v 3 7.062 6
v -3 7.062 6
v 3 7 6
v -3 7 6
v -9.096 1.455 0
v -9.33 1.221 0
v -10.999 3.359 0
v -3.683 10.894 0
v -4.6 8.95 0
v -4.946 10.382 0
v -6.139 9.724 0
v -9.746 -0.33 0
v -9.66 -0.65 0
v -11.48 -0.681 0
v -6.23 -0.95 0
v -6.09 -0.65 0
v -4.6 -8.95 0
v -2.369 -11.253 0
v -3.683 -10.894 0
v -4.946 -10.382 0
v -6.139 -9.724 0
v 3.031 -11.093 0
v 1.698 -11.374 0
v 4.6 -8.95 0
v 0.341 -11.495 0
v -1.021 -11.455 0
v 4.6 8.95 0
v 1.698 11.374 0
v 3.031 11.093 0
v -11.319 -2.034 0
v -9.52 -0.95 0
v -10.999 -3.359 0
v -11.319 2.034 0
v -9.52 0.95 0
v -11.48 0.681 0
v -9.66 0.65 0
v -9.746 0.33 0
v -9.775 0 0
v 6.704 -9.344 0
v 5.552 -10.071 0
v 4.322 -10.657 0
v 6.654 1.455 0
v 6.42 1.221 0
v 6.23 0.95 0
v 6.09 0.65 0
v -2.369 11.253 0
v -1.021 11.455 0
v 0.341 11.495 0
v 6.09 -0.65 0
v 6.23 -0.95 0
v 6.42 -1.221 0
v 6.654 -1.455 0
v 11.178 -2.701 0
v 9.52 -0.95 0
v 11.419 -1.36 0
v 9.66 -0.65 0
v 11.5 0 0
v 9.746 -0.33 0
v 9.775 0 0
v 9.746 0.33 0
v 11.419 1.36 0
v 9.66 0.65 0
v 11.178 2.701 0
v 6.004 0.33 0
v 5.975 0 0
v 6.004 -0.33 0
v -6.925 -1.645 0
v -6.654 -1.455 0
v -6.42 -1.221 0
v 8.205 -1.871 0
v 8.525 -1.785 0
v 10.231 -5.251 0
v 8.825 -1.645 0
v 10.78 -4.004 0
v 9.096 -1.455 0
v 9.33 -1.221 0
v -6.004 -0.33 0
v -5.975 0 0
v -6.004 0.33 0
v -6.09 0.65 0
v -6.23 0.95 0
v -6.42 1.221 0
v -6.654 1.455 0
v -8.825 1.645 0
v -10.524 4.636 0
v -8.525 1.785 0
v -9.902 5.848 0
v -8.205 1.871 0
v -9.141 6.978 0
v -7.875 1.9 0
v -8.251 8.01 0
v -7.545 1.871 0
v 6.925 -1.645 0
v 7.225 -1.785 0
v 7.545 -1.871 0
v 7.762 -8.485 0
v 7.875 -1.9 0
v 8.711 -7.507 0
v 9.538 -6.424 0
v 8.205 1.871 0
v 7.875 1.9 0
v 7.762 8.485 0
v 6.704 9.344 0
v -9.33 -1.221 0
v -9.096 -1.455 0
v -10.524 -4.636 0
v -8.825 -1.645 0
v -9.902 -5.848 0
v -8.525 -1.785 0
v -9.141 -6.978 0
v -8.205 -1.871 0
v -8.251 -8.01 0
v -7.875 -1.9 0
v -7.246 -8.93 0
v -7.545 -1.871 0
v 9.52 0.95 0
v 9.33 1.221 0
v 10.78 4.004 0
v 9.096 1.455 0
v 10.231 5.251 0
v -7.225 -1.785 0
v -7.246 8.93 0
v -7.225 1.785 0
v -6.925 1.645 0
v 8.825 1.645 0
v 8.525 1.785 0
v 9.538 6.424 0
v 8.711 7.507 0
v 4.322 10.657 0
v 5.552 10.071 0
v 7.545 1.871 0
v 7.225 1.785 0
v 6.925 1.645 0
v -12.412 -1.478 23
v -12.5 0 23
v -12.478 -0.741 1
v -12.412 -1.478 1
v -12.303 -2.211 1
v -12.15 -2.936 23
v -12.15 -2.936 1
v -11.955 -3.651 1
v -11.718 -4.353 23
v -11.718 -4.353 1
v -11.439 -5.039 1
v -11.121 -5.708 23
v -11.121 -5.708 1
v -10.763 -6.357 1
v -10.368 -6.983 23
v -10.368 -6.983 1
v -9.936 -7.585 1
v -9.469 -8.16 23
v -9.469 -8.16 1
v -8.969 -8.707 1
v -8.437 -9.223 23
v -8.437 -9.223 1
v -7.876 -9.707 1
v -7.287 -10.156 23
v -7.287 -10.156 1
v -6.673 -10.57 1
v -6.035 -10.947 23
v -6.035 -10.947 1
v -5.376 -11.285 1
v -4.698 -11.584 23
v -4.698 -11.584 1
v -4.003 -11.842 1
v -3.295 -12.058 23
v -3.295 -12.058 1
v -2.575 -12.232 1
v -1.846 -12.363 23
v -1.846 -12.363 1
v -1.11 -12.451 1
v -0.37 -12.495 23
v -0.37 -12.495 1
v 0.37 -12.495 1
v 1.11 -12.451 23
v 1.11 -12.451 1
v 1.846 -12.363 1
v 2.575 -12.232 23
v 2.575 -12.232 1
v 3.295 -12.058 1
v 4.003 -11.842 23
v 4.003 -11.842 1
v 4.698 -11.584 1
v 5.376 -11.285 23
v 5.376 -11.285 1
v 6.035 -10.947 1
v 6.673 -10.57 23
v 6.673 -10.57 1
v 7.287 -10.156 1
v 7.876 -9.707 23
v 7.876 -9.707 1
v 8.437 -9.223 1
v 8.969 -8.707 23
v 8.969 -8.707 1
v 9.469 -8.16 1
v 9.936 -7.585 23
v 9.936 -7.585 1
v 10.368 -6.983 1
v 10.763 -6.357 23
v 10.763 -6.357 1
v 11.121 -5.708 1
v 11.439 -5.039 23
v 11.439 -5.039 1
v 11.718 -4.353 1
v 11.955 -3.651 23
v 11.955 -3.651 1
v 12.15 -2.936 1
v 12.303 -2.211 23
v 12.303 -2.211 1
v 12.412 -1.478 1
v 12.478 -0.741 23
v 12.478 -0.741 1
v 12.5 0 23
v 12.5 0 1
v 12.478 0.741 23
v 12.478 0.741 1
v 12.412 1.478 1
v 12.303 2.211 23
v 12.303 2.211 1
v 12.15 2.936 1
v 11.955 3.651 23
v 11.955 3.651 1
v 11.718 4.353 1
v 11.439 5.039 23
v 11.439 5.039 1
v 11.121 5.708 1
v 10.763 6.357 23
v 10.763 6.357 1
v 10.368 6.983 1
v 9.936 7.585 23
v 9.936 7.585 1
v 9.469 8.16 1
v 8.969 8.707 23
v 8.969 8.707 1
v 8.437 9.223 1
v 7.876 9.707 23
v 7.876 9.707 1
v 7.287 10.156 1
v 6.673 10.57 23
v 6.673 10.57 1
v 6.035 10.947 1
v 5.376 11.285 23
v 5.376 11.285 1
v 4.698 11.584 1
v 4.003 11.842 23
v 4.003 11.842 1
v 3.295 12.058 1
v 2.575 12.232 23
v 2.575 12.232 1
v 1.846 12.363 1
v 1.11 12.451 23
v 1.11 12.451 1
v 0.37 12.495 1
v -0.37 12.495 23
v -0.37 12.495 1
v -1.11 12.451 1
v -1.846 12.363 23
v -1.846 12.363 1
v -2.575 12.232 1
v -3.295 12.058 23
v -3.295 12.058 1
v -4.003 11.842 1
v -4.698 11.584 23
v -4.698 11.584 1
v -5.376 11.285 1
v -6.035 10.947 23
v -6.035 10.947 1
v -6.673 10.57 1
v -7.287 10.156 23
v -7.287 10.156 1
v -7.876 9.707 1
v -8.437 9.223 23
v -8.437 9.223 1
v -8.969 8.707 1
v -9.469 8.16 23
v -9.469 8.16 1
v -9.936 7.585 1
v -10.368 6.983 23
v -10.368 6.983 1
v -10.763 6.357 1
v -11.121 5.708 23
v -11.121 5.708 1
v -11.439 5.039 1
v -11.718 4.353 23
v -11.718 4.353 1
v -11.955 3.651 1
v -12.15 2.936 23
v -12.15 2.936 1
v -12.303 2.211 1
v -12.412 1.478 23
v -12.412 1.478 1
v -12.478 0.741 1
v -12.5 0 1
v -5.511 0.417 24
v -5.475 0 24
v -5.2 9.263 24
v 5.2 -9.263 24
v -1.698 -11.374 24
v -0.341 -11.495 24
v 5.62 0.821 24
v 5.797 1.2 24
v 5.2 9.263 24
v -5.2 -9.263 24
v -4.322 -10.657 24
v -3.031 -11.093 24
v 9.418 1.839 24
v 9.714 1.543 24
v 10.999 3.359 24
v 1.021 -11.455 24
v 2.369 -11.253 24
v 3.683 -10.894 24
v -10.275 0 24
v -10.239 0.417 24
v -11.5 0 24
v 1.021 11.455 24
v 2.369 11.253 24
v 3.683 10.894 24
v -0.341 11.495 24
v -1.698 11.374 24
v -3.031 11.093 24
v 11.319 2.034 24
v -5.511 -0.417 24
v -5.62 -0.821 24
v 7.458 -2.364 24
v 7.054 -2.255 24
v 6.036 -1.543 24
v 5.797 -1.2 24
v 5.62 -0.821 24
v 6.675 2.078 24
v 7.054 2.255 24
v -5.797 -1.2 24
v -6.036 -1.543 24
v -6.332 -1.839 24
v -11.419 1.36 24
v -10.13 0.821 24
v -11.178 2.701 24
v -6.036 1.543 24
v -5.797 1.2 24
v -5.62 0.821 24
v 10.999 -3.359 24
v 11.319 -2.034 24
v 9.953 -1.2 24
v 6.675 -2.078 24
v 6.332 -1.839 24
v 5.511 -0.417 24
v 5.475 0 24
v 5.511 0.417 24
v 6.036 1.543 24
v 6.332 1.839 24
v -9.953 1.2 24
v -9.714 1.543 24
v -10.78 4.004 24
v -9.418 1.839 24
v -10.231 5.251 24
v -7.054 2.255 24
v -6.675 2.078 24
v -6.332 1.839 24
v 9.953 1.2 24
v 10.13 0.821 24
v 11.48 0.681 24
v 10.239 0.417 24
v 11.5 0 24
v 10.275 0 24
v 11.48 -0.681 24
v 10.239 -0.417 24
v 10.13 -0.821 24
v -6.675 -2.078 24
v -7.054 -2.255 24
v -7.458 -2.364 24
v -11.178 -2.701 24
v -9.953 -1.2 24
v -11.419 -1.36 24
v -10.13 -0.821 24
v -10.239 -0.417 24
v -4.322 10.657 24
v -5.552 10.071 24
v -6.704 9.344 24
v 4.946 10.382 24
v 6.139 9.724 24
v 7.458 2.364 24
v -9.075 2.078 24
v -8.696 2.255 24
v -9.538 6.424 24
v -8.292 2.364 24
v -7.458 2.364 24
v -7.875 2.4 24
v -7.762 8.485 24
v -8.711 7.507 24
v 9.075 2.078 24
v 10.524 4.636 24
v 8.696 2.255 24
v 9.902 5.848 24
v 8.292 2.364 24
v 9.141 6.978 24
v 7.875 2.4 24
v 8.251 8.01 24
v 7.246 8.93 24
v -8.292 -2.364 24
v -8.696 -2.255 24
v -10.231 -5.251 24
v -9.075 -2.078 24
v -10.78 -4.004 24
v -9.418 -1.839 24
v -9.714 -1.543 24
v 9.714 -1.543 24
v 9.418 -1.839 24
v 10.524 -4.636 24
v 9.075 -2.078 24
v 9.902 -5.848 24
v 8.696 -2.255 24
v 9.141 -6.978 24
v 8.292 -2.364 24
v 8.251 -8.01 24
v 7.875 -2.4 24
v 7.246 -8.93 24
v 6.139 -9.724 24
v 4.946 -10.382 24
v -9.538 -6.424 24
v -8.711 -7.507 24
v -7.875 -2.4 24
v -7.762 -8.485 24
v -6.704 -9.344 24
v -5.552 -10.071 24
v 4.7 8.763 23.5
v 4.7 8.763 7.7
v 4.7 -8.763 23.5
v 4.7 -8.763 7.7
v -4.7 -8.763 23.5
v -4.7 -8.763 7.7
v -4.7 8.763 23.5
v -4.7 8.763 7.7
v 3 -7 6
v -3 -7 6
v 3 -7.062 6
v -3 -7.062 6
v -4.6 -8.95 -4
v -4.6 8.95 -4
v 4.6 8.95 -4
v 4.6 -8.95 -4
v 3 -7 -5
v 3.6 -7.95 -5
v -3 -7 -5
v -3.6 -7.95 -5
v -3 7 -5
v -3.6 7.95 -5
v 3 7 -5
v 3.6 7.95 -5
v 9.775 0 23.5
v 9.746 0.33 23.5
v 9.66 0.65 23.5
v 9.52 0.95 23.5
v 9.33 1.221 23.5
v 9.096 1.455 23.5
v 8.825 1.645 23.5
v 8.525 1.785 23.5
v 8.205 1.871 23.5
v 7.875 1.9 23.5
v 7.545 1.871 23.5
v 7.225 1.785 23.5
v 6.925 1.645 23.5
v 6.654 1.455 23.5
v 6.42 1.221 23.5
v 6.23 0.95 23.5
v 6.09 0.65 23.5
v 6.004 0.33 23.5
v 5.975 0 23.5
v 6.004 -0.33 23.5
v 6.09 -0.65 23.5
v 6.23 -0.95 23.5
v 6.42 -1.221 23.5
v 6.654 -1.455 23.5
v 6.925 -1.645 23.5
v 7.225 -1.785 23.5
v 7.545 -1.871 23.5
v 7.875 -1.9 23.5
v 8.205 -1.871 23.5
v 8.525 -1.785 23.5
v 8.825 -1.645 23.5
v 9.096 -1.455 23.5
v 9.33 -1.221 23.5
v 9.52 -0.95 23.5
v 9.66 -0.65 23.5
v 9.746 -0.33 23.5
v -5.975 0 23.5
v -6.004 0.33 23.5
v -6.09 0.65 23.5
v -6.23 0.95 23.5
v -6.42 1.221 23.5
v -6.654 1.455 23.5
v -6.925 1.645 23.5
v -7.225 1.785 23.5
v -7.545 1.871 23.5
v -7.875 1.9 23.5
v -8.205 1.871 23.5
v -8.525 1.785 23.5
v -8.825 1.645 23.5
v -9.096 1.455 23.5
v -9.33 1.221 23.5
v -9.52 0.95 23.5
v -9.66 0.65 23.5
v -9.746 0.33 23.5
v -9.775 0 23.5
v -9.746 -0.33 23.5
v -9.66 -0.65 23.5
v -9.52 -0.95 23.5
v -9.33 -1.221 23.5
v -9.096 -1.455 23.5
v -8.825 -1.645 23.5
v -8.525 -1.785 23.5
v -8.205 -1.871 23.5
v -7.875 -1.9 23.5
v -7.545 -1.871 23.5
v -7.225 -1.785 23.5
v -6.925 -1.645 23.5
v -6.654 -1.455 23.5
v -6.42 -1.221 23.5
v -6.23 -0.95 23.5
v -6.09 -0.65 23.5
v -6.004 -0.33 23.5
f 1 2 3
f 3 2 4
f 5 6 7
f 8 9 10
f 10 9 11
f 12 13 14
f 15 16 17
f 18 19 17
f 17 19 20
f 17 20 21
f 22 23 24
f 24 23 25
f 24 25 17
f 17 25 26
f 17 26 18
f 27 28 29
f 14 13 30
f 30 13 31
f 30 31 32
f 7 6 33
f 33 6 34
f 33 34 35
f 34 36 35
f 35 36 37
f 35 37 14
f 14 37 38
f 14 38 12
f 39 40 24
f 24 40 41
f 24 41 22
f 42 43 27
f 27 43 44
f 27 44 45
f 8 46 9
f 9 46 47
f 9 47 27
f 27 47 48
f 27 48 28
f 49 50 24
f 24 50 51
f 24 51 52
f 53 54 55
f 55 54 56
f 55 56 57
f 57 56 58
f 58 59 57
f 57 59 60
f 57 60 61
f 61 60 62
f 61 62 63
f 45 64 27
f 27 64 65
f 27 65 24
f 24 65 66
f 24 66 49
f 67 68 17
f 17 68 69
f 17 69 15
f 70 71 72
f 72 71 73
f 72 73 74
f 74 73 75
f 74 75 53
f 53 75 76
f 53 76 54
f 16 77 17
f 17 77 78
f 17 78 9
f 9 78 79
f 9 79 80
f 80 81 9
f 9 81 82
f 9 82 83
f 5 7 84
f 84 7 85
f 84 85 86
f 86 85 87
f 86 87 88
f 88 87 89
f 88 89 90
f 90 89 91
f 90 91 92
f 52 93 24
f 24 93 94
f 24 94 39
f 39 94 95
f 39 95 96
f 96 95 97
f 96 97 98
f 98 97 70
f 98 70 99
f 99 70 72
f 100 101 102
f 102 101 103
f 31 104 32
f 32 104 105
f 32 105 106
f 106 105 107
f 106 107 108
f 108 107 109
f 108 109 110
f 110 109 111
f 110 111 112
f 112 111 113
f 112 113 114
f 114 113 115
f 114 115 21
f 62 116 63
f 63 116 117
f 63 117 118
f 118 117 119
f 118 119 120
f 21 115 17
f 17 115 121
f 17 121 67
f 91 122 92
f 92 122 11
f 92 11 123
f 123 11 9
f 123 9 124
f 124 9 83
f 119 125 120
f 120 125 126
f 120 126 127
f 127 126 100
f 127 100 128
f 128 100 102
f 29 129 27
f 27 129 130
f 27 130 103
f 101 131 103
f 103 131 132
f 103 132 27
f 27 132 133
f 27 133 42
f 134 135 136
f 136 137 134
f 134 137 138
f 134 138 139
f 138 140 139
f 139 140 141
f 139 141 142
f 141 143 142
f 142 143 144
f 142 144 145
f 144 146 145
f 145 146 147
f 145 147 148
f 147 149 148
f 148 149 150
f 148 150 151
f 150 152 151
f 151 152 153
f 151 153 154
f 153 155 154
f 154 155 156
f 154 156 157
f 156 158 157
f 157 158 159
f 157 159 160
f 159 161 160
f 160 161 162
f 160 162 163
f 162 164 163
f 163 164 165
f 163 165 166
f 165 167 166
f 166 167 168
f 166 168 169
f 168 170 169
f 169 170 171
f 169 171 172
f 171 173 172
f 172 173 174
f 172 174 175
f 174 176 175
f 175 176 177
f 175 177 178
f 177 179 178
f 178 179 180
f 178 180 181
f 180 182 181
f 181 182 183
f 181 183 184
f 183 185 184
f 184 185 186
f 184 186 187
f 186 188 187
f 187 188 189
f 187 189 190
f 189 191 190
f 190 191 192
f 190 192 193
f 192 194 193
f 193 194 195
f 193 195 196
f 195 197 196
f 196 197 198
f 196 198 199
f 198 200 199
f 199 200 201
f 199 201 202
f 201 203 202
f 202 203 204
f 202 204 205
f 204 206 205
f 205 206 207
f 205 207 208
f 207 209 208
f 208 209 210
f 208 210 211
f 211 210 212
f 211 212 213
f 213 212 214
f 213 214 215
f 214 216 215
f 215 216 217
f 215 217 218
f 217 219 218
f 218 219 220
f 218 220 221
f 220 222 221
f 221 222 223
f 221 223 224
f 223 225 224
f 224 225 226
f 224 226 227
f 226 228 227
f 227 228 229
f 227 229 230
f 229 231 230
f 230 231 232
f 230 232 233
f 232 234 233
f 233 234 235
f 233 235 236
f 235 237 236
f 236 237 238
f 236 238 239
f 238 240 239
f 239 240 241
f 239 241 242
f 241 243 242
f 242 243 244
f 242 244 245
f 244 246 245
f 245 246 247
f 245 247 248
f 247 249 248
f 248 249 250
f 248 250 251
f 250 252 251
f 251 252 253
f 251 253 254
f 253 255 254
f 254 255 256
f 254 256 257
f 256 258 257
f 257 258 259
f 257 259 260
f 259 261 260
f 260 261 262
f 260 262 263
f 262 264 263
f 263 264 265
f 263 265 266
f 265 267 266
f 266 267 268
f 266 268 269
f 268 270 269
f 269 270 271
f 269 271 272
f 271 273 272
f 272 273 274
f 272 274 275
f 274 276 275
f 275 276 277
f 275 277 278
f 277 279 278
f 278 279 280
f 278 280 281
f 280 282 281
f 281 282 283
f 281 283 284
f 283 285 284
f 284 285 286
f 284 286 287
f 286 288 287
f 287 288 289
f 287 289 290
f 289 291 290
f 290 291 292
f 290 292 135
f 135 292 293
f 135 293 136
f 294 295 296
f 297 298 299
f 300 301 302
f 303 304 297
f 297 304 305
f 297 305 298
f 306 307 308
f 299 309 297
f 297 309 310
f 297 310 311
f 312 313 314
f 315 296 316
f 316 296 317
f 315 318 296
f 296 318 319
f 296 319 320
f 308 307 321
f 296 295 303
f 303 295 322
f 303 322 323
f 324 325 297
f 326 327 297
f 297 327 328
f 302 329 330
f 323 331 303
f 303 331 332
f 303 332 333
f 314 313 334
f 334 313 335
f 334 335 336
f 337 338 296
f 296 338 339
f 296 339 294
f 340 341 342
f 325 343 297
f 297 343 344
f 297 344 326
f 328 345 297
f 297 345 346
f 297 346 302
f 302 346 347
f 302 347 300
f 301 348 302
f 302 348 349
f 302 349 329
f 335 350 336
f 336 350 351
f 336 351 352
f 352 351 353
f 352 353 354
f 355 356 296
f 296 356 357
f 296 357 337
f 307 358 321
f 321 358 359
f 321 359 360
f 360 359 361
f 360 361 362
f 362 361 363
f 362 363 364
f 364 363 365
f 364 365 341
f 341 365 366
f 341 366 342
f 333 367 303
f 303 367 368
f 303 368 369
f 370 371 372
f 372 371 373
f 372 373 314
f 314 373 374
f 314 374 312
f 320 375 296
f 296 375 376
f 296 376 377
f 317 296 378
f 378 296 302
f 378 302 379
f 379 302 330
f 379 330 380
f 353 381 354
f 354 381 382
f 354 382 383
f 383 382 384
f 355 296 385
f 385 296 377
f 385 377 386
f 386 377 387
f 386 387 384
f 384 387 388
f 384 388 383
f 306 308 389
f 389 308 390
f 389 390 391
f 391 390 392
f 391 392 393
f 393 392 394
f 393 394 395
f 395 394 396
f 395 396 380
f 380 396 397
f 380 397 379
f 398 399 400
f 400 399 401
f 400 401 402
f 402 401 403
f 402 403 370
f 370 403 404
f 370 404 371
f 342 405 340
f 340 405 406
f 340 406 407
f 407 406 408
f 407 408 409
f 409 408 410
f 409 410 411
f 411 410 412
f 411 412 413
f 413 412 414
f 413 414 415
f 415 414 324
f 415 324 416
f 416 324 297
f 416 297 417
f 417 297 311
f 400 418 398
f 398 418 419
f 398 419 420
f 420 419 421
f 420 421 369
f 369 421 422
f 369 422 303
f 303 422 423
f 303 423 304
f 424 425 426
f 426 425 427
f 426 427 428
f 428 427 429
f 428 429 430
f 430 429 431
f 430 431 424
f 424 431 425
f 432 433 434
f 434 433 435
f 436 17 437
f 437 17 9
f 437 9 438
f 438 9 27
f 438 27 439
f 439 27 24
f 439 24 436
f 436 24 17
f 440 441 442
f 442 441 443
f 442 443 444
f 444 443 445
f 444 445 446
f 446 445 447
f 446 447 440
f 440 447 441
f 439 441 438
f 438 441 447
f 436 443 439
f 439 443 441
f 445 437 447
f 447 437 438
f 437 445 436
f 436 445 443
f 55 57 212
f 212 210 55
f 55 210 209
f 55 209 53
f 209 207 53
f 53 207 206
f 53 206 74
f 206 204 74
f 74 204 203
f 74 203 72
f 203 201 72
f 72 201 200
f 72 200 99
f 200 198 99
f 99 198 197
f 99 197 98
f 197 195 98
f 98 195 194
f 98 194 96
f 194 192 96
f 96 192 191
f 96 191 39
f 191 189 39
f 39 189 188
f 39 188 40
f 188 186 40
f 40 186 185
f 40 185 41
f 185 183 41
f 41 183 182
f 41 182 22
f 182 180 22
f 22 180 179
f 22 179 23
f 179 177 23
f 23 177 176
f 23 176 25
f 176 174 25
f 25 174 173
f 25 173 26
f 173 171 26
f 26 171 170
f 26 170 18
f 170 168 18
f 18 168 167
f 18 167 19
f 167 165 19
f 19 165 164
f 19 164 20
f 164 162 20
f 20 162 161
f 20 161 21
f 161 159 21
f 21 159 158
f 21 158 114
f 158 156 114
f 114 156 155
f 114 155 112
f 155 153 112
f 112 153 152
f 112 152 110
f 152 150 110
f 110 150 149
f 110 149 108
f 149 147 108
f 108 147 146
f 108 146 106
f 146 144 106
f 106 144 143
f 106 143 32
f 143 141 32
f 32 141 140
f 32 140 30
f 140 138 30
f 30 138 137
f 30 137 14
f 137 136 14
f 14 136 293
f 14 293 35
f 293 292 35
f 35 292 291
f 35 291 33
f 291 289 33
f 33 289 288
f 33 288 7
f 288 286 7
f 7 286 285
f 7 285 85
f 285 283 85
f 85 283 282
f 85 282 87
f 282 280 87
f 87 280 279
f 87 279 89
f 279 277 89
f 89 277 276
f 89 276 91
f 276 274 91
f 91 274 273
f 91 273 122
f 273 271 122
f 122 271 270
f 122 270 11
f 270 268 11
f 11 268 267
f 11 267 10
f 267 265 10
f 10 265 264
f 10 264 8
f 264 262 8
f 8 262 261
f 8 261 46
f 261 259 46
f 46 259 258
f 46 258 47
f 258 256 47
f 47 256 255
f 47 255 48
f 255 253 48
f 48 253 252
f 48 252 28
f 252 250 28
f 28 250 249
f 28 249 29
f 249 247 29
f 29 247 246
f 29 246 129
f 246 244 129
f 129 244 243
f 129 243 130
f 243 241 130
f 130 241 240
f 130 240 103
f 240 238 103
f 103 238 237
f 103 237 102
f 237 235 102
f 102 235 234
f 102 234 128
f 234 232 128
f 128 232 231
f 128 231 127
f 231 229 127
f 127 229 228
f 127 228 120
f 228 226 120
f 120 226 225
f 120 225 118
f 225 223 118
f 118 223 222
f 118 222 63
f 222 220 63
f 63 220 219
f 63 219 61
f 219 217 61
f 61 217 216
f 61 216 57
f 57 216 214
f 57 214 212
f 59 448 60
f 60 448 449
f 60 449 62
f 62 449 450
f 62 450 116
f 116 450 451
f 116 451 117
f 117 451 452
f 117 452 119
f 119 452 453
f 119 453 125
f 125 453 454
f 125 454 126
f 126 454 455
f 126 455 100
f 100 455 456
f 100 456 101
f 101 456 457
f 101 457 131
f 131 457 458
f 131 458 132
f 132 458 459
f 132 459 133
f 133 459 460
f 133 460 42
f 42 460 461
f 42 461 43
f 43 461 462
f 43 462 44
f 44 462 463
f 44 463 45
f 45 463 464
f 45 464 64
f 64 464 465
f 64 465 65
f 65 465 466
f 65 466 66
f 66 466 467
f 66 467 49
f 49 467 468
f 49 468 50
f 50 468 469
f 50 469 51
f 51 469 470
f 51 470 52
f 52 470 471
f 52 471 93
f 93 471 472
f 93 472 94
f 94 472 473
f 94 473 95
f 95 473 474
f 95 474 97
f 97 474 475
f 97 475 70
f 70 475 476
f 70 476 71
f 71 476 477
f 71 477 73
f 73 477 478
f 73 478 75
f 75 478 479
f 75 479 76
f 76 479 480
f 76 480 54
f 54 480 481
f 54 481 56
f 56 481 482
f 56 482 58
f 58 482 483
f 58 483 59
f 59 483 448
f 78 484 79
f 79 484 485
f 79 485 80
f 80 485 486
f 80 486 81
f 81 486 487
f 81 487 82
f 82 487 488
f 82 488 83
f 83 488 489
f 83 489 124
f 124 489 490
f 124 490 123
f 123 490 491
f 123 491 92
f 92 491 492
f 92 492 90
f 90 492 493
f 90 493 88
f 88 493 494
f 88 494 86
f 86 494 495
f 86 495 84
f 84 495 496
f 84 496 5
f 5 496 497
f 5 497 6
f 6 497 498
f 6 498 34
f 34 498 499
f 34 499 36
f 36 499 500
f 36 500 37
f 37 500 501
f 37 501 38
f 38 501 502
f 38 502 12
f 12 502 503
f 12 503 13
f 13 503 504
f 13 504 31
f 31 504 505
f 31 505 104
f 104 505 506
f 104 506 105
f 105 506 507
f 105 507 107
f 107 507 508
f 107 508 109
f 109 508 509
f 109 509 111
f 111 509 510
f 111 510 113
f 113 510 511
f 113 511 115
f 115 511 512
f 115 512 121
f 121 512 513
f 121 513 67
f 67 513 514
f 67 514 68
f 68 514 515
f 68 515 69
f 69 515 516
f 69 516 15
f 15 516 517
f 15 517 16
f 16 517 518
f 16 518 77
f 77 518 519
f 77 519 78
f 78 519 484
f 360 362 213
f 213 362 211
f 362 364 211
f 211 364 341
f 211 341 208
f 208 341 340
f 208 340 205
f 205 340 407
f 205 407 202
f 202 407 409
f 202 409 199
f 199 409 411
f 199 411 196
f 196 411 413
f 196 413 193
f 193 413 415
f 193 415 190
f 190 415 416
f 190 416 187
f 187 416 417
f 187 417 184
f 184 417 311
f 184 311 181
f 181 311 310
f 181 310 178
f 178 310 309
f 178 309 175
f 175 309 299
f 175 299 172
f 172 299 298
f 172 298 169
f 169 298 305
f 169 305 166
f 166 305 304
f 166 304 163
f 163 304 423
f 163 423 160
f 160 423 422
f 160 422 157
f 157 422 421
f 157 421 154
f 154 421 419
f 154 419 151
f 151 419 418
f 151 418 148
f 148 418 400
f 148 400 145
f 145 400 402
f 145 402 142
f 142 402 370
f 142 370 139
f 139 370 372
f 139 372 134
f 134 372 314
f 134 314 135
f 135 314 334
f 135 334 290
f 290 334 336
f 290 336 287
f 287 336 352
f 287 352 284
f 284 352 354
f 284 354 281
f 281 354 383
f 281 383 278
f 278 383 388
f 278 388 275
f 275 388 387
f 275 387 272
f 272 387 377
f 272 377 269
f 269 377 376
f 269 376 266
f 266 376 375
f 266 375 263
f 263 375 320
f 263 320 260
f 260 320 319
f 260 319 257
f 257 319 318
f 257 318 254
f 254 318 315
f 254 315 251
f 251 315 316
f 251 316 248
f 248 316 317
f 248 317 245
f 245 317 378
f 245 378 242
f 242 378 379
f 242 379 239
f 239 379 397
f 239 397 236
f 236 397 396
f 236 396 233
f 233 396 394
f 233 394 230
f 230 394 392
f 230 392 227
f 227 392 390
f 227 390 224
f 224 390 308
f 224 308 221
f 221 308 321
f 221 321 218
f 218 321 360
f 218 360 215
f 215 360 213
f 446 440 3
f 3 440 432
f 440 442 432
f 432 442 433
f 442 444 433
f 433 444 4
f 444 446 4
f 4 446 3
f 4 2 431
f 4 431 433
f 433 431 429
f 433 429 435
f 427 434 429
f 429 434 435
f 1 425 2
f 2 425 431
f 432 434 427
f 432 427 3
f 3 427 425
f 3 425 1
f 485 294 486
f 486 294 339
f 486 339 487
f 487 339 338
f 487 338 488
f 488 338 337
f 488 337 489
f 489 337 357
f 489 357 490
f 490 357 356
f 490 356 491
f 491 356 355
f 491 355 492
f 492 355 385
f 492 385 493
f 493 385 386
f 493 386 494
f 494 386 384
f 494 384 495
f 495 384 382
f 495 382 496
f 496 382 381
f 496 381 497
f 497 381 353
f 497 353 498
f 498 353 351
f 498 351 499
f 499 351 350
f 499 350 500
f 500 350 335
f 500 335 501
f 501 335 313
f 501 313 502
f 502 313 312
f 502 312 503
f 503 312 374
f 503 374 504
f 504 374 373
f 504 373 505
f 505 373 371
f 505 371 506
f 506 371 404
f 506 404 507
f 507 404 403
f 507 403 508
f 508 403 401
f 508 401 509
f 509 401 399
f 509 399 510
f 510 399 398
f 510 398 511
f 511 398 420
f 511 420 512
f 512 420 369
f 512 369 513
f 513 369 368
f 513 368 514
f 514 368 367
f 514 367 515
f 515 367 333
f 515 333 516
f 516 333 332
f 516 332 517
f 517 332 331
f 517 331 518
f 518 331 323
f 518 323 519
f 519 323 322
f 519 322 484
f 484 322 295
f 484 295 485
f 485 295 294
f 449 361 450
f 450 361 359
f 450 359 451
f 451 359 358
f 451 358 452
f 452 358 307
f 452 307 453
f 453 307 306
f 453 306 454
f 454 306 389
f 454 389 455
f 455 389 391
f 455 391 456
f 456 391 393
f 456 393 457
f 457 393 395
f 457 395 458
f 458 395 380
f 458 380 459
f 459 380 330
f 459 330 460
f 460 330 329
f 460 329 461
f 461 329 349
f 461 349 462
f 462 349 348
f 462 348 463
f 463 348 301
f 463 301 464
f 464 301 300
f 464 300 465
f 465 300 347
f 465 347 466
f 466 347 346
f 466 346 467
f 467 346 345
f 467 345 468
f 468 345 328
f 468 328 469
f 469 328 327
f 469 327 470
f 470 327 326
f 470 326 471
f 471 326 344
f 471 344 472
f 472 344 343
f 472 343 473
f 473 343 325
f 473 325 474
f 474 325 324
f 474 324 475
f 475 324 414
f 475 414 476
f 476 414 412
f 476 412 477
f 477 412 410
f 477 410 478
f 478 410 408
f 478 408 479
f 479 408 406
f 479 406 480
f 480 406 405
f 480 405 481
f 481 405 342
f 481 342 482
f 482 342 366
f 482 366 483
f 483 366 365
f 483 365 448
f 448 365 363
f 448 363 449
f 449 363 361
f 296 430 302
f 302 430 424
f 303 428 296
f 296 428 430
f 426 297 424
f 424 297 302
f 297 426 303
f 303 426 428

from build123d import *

# Parameters (mm, degrees)
CROQUIS1_R              = 12.5
SALIENTE_EXTRUIR1_DEPTH = 24
CROQUIS2_W              = 9.4
CROQUIS2_H              = 17.525
CORTAR_EXTRUIR1_DEPTH   = 18
CROQUIS3_W              = 9.2
CROQUIS3_H              = 17.9
SALIENTE_EXTRUIR2_DEPTH = 5
CHAFL_N1_SIZE           = 1
CHAFL_N2_SIZE           = 1
CROQUIS4_R              = 1.9
CORTAR_EXTRUIR2_DEPTH   = 34.963215395
CHAFL_N3_SIZE           = 1
CROQUIS5_W              = 6
CROQUIS5_H              = 14
CORTAR_EXTRUIR3_DEPTH   = 26.228951623
CHAFL_N4_SIZE           = 1.7
CHAFL_N5_SIZE           = 0.5
CHAFL_N6_SIZE           = 0.5


with BuildPart() as part:
    # Croquis1 → Saliente-Extruir1 (new body)
    with BuildSketch(Plane.XY):
        Circle(CROQUIS1_R)
    extrude(amount=SALIENTE_EXTRUIR1_DEPTH)

    # Croquis2 → Cortar-Extruir1 (cut)
    with BuildSketch(Plane.XY.offset(24)):
        Rectangle(CROQUIS2_W, CROQUIS2_H)
    extrude(amount=-CORTAR_EXTRUIR1_DEPTH, mode=Mode.SUBTRACT)

    # Croquis3 → Saliente-Extruir2 (add)
    with BuildSketch(Plane(origin=(0, 0, 0), x_dir=(-1, 0, 0), z_dir=(0, 0, -1))):
        Rectangle(CROQUIS3_W, CROQUIS3_H)
    extrude(amount=SALIENTE_EXTRUIR2_DEPTH)

    # Chaflán1
    chafl_n1_edges = [part.edges().sort_by_distance(p)[0] for p in [
        (-4.6, 0, -5),
        (0, 8.95, -5),
        (4.6, 0, -5),
        (0, -8.95, -5),
    ]]
    chamfer(chafl_n1_edges, length=CHAFL_N1_SIZE)

    # Chaflán2
    chafl_n2_edges = [part.edges().sort_by_distance(p)[0] for p in [
        (-12.5, 0, 0),
    ]]
    chamfer(chafl_n2_edges, length=CHAFL_N2_SIZE)

    # Croquis4 → Cortar-Extruir2 (cut, through all)
    with BuildSketch(Plane.XY.offset(24)):
        with Locations((-7.875, 0)):
            Circle(CROQUIS4_R)
        with Locations((7.875, 0)):
            Circle(CROQUIS4_R)
    extrude(amount=-CORTAR_EXTRUIR2_DEPTH, mode=Mode.SUBTRACT)

    # Chaflán3
    chafl_n3_edges = [part.edges().sort_by_distance(p)[0] for p in [
        (-12.5, 0, 24),
    ]]
    chamfer(chafl_n3_edges, length=CHAFL_N3_SIZE)

    # Croquis5 → Cortar-Extruir3 (cut, through all)
    with BuildSketch(Plane.XY.offset(6)):
        Rectangle(CROQUIS5_W, CROQUIS5_H)
    extrude(amount=-CORTAR_EXTRUIR3_DEPTH, mode=Mode.SUBTRACT)

    # Chaflán4
    chafl_n4_edges = [part.edges().sort_by_distance(p)[0] for p in [
        (4.7, 0, 6),
        (0, -8.7625, 6),
        (-4.7, 0, 6),
        (0, 8.7625, 6),
    ]]
    chamfer(chafl_n4_edges, length=CHAFL_N4_SIZE - 0.0001)  # a hair under: the kernel refuses the full size

    # Chaflán5
    chafl_n5_edges = [part.edges().sort_by_distance(p)[0] for p in [
        (-9.775, 0, 24),
        (5.975, 0, 24),
    ]]
    chamfer(chafl_n5_edges, length=CHAFL_N5_SIZE)

    # Chaflán6
    chafl_n6_edges = [part.edges().sort_by_distance(p)[0] for p in [
        (0, -8.7625, 24),
        (4.7, 0, 24),
        (0, 8.7625, 24),
        (-4.7, 0, 24),
    ]]
    chamfer(chafl_n6_edges, length=CHAFL_N6_SIZE)


solid = part.part
